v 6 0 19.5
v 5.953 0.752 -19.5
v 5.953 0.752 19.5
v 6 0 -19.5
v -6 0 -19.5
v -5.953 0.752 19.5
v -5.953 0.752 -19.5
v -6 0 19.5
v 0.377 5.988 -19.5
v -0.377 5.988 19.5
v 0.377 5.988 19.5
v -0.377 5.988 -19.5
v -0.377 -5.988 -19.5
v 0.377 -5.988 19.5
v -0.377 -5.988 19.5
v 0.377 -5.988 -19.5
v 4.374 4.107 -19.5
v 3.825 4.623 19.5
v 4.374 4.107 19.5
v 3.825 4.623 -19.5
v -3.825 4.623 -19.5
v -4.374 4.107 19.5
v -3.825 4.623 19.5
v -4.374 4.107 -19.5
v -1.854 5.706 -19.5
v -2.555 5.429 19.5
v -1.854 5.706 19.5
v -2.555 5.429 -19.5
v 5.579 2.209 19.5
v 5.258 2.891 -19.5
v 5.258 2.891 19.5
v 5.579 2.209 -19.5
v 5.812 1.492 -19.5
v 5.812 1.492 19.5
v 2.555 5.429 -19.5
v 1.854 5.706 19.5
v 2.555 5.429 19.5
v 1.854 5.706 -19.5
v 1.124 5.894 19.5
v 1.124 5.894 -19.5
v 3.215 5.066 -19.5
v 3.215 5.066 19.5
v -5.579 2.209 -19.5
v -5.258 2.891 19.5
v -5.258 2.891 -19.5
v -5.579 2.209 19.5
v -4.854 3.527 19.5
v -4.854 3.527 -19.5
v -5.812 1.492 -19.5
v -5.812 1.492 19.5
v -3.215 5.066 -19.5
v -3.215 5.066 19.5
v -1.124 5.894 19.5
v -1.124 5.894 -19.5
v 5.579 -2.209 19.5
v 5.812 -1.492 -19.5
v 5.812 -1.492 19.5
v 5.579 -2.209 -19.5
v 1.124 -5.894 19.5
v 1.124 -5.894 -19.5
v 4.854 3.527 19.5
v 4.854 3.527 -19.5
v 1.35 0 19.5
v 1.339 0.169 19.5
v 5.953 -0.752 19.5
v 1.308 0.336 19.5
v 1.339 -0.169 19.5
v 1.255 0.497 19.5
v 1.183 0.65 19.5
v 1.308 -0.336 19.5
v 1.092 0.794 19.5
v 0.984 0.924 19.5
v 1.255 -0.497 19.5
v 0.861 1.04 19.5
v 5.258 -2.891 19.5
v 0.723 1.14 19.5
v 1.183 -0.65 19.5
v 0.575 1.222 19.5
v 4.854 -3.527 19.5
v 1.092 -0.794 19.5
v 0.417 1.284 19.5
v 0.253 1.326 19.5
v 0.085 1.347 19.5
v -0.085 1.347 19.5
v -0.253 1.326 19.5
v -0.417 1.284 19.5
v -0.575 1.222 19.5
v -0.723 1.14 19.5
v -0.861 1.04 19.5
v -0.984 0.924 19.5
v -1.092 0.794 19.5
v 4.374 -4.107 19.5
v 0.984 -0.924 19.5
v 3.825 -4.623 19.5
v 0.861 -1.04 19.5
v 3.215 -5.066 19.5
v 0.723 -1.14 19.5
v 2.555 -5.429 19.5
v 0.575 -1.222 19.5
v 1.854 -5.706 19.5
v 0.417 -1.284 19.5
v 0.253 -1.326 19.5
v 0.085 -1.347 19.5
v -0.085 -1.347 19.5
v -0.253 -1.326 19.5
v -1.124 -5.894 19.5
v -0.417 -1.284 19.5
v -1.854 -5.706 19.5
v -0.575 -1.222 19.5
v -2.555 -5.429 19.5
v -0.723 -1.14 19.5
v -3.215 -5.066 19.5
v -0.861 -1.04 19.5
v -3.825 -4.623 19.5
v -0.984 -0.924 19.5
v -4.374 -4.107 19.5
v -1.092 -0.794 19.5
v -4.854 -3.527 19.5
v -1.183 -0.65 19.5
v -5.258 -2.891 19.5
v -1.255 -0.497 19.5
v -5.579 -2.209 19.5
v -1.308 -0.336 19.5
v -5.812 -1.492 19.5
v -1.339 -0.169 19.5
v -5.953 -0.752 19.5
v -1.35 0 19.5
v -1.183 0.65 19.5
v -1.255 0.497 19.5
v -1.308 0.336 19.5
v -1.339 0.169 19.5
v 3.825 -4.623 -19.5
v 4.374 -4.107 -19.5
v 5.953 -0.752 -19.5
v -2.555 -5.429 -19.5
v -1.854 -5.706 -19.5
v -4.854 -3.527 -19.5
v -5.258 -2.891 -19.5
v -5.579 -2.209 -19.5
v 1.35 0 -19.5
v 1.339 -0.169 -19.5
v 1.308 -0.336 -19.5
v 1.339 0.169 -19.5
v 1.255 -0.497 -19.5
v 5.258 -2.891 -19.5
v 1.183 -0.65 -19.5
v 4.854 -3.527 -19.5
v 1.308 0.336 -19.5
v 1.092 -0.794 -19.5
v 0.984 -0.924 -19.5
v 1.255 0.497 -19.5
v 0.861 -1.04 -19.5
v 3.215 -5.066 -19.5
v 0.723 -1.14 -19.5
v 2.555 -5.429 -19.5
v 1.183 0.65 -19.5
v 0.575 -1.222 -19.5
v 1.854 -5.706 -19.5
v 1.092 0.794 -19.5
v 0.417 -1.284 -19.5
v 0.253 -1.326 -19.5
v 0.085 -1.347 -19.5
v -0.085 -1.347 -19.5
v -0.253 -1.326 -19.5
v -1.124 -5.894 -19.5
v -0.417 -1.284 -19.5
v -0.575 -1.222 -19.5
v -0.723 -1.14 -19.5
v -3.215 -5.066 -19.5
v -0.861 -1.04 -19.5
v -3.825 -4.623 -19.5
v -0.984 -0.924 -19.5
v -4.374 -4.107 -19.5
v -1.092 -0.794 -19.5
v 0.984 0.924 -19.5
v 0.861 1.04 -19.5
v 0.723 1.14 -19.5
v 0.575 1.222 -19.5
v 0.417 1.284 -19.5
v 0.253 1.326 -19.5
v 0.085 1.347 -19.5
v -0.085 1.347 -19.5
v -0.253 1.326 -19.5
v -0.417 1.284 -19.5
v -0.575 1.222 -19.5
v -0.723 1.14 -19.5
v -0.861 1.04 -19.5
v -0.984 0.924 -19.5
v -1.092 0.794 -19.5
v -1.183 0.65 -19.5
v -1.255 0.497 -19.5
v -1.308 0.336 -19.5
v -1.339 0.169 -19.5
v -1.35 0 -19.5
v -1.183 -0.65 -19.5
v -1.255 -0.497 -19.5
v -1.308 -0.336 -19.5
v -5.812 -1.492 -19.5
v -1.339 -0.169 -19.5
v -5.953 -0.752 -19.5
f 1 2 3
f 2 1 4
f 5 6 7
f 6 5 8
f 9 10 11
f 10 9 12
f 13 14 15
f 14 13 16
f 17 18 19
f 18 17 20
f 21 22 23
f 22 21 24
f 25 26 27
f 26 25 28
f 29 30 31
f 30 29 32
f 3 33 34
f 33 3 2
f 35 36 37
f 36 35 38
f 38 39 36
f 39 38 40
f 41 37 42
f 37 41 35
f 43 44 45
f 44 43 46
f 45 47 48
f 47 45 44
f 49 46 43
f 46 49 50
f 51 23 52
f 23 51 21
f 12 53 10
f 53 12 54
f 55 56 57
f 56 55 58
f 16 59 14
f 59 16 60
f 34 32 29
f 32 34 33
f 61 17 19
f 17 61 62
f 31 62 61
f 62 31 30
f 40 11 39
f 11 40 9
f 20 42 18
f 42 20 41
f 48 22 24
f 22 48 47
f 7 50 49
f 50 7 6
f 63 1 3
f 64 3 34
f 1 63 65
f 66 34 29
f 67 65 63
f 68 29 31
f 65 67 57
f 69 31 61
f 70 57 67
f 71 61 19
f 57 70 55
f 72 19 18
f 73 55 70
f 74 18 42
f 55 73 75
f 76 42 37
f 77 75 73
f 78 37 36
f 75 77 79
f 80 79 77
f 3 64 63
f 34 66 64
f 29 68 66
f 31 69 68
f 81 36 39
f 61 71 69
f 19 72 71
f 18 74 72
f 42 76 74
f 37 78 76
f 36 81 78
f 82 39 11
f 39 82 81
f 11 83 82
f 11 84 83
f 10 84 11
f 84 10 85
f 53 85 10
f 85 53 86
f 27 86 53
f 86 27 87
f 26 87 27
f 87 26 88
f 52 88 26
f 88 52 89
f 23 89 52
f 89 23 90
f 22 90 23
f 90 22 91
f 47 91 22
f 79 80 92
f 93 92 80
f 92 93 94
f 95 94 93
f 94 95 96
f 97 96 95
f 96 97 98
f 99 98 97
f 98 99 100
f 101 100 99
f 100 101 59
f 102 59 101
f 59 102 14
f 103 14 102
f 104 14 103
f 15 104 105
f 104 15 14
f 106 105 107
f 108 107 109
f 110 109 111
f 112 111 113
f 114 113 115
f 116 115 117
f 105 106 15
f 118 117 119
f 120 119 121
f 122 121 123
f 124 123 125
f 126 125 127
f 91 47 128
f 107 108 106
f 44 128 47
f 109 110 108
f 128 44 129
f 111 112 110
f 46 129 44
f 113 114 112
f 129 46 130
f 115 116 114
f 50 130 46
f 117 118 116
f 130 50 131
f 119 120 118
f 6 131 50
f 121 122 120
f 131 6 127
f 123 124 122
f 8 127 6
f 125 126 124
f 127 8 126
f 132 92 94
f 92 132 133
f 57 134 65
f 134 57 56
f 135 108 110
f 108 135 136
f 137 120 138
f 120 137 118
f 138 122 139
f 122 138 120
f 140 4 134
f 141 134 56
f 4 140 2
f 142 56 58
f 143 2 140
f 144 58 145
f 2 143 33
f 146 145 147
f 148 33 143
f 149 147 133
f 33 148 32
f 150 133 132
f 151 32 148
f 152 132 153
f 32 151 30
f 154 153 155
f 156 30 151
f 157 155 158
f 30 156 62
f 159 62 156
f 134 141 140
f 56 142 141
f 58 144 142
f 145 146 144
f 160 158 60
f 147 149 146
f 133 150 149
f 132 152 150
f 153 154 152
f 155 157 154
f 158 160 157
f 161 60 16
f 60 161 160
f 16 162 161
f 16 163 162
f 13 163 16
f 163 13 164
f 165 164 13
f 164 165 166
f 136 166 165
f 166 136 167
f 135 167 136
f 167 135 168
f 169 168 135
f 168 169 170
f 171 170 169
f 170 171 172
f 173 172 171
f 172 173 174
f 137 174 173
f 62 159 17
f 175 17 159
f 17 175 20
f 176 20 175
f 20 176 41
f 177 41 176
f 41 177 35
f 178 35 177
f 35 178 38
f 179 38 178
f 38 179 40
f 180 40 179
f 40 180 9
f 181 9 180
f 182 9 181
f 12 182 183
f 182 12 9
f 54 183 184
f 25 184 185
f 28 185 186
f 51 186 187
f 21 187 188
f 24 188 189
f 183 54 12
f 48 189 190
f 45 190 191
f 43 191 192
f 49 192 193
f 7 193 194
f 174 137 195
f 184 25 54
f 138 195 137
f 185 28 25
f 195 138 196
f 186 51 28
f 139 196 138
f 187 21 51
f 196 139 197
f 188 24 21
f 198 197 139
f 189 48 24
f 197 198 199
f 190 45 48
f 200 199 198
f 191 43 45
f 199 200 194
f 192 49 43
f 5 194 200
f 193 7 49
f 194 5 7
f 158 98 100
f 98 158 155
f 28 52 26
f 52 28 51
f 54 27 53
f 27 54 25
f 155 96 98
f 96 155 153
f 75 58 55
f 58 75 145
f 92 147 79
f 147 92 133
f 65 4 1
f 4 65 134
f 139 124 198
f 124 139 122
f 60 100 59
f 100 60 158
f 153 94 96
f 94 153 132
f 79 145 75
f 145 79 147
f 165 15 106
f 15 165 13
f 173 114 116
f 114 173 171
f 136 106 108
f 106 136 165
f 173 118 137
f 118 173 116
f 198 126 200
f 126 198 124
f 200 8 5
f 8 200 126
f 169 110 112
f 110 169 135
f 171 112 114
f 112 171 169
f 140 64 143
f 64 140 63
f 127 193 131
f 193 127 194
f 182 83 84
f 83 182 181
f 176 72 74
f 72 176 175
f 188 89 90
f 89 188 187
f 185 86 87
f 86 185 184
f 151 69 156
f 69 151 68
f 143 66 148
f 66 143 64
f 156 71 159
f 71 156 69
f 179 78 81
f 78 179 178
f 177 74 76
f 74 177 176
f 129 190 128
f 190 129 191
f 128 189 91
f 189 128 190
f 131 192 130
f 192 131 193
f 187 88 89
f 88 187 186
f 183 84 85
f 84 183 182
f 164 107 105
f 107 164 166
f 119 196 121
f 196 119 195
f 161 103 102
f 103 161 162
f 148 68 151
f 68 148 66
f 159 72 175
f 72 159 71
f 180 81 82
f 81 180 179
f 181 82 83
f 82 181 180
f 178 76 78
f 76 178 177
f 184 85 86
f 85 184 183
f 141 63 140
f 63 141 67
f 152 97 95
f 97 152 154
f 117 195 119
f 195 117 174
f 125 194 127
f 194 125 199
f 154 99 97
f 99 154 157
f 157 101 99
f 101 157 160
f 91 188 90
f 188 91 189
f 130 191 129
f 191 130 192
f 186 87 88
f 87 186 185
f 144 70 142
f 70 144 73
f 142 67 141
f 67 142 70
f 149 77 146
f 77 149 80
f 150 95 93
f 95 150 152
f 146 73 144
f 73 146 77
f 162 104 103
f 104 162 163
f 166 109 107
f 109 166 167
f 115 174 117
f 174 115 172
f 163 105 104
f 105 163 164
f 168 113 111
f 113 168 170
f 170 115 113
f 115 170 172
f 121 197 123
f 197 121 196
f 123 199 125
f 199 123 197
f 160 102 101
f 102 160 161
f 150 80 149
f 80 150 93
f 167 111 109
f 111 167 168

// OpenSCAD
$fn = 50;


difference() {
	union() {
		translate(v = [0, 0, -19.5000000000]) {
			cylinder(h = 39, r = 6.0000000000);
		}
	}
	union() {
		translate(v = [0, 0, -100.0000000000]) {
			cylinder(h = 200, r = 1.3500000000);
		}
	}
}
